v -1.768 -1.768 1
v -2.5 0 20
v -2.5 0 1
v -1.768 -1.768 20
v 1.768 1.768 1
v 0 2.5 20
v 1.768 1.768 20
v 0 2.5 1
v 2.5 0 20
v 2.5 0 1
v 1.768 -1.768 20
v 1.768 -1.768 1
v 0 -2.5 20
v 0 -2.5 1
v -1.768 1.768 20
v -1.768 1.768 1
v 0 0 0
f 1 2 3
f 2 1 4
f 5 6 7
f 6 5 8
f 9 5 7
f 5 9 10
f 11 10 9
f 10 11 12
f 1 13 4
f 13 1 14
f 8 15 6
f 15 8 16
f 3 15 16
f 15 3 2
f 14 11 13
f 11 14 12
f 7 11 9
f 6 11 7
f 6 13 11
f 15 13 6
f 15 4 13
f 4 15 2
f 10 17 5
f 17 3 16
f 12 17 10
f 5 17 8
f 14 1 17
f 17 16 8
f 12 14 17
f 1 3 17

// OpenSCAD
// Alignment pin to position stacked components
// diameter: overall pin diameter
// length: overall pin length
// chamfer: size of conical tip
module alignment_pin(diameter=5, length=20, chamfer=1) {
    union() {
        // main shaft
        translate([0, 0, chamfer])
            cylinder(d=diameter, h=length - chamfer);
        // tapered tip
        cylinder(d1=0, d2=diameter, h=chamfer);
    }
}

alignment_pin();
